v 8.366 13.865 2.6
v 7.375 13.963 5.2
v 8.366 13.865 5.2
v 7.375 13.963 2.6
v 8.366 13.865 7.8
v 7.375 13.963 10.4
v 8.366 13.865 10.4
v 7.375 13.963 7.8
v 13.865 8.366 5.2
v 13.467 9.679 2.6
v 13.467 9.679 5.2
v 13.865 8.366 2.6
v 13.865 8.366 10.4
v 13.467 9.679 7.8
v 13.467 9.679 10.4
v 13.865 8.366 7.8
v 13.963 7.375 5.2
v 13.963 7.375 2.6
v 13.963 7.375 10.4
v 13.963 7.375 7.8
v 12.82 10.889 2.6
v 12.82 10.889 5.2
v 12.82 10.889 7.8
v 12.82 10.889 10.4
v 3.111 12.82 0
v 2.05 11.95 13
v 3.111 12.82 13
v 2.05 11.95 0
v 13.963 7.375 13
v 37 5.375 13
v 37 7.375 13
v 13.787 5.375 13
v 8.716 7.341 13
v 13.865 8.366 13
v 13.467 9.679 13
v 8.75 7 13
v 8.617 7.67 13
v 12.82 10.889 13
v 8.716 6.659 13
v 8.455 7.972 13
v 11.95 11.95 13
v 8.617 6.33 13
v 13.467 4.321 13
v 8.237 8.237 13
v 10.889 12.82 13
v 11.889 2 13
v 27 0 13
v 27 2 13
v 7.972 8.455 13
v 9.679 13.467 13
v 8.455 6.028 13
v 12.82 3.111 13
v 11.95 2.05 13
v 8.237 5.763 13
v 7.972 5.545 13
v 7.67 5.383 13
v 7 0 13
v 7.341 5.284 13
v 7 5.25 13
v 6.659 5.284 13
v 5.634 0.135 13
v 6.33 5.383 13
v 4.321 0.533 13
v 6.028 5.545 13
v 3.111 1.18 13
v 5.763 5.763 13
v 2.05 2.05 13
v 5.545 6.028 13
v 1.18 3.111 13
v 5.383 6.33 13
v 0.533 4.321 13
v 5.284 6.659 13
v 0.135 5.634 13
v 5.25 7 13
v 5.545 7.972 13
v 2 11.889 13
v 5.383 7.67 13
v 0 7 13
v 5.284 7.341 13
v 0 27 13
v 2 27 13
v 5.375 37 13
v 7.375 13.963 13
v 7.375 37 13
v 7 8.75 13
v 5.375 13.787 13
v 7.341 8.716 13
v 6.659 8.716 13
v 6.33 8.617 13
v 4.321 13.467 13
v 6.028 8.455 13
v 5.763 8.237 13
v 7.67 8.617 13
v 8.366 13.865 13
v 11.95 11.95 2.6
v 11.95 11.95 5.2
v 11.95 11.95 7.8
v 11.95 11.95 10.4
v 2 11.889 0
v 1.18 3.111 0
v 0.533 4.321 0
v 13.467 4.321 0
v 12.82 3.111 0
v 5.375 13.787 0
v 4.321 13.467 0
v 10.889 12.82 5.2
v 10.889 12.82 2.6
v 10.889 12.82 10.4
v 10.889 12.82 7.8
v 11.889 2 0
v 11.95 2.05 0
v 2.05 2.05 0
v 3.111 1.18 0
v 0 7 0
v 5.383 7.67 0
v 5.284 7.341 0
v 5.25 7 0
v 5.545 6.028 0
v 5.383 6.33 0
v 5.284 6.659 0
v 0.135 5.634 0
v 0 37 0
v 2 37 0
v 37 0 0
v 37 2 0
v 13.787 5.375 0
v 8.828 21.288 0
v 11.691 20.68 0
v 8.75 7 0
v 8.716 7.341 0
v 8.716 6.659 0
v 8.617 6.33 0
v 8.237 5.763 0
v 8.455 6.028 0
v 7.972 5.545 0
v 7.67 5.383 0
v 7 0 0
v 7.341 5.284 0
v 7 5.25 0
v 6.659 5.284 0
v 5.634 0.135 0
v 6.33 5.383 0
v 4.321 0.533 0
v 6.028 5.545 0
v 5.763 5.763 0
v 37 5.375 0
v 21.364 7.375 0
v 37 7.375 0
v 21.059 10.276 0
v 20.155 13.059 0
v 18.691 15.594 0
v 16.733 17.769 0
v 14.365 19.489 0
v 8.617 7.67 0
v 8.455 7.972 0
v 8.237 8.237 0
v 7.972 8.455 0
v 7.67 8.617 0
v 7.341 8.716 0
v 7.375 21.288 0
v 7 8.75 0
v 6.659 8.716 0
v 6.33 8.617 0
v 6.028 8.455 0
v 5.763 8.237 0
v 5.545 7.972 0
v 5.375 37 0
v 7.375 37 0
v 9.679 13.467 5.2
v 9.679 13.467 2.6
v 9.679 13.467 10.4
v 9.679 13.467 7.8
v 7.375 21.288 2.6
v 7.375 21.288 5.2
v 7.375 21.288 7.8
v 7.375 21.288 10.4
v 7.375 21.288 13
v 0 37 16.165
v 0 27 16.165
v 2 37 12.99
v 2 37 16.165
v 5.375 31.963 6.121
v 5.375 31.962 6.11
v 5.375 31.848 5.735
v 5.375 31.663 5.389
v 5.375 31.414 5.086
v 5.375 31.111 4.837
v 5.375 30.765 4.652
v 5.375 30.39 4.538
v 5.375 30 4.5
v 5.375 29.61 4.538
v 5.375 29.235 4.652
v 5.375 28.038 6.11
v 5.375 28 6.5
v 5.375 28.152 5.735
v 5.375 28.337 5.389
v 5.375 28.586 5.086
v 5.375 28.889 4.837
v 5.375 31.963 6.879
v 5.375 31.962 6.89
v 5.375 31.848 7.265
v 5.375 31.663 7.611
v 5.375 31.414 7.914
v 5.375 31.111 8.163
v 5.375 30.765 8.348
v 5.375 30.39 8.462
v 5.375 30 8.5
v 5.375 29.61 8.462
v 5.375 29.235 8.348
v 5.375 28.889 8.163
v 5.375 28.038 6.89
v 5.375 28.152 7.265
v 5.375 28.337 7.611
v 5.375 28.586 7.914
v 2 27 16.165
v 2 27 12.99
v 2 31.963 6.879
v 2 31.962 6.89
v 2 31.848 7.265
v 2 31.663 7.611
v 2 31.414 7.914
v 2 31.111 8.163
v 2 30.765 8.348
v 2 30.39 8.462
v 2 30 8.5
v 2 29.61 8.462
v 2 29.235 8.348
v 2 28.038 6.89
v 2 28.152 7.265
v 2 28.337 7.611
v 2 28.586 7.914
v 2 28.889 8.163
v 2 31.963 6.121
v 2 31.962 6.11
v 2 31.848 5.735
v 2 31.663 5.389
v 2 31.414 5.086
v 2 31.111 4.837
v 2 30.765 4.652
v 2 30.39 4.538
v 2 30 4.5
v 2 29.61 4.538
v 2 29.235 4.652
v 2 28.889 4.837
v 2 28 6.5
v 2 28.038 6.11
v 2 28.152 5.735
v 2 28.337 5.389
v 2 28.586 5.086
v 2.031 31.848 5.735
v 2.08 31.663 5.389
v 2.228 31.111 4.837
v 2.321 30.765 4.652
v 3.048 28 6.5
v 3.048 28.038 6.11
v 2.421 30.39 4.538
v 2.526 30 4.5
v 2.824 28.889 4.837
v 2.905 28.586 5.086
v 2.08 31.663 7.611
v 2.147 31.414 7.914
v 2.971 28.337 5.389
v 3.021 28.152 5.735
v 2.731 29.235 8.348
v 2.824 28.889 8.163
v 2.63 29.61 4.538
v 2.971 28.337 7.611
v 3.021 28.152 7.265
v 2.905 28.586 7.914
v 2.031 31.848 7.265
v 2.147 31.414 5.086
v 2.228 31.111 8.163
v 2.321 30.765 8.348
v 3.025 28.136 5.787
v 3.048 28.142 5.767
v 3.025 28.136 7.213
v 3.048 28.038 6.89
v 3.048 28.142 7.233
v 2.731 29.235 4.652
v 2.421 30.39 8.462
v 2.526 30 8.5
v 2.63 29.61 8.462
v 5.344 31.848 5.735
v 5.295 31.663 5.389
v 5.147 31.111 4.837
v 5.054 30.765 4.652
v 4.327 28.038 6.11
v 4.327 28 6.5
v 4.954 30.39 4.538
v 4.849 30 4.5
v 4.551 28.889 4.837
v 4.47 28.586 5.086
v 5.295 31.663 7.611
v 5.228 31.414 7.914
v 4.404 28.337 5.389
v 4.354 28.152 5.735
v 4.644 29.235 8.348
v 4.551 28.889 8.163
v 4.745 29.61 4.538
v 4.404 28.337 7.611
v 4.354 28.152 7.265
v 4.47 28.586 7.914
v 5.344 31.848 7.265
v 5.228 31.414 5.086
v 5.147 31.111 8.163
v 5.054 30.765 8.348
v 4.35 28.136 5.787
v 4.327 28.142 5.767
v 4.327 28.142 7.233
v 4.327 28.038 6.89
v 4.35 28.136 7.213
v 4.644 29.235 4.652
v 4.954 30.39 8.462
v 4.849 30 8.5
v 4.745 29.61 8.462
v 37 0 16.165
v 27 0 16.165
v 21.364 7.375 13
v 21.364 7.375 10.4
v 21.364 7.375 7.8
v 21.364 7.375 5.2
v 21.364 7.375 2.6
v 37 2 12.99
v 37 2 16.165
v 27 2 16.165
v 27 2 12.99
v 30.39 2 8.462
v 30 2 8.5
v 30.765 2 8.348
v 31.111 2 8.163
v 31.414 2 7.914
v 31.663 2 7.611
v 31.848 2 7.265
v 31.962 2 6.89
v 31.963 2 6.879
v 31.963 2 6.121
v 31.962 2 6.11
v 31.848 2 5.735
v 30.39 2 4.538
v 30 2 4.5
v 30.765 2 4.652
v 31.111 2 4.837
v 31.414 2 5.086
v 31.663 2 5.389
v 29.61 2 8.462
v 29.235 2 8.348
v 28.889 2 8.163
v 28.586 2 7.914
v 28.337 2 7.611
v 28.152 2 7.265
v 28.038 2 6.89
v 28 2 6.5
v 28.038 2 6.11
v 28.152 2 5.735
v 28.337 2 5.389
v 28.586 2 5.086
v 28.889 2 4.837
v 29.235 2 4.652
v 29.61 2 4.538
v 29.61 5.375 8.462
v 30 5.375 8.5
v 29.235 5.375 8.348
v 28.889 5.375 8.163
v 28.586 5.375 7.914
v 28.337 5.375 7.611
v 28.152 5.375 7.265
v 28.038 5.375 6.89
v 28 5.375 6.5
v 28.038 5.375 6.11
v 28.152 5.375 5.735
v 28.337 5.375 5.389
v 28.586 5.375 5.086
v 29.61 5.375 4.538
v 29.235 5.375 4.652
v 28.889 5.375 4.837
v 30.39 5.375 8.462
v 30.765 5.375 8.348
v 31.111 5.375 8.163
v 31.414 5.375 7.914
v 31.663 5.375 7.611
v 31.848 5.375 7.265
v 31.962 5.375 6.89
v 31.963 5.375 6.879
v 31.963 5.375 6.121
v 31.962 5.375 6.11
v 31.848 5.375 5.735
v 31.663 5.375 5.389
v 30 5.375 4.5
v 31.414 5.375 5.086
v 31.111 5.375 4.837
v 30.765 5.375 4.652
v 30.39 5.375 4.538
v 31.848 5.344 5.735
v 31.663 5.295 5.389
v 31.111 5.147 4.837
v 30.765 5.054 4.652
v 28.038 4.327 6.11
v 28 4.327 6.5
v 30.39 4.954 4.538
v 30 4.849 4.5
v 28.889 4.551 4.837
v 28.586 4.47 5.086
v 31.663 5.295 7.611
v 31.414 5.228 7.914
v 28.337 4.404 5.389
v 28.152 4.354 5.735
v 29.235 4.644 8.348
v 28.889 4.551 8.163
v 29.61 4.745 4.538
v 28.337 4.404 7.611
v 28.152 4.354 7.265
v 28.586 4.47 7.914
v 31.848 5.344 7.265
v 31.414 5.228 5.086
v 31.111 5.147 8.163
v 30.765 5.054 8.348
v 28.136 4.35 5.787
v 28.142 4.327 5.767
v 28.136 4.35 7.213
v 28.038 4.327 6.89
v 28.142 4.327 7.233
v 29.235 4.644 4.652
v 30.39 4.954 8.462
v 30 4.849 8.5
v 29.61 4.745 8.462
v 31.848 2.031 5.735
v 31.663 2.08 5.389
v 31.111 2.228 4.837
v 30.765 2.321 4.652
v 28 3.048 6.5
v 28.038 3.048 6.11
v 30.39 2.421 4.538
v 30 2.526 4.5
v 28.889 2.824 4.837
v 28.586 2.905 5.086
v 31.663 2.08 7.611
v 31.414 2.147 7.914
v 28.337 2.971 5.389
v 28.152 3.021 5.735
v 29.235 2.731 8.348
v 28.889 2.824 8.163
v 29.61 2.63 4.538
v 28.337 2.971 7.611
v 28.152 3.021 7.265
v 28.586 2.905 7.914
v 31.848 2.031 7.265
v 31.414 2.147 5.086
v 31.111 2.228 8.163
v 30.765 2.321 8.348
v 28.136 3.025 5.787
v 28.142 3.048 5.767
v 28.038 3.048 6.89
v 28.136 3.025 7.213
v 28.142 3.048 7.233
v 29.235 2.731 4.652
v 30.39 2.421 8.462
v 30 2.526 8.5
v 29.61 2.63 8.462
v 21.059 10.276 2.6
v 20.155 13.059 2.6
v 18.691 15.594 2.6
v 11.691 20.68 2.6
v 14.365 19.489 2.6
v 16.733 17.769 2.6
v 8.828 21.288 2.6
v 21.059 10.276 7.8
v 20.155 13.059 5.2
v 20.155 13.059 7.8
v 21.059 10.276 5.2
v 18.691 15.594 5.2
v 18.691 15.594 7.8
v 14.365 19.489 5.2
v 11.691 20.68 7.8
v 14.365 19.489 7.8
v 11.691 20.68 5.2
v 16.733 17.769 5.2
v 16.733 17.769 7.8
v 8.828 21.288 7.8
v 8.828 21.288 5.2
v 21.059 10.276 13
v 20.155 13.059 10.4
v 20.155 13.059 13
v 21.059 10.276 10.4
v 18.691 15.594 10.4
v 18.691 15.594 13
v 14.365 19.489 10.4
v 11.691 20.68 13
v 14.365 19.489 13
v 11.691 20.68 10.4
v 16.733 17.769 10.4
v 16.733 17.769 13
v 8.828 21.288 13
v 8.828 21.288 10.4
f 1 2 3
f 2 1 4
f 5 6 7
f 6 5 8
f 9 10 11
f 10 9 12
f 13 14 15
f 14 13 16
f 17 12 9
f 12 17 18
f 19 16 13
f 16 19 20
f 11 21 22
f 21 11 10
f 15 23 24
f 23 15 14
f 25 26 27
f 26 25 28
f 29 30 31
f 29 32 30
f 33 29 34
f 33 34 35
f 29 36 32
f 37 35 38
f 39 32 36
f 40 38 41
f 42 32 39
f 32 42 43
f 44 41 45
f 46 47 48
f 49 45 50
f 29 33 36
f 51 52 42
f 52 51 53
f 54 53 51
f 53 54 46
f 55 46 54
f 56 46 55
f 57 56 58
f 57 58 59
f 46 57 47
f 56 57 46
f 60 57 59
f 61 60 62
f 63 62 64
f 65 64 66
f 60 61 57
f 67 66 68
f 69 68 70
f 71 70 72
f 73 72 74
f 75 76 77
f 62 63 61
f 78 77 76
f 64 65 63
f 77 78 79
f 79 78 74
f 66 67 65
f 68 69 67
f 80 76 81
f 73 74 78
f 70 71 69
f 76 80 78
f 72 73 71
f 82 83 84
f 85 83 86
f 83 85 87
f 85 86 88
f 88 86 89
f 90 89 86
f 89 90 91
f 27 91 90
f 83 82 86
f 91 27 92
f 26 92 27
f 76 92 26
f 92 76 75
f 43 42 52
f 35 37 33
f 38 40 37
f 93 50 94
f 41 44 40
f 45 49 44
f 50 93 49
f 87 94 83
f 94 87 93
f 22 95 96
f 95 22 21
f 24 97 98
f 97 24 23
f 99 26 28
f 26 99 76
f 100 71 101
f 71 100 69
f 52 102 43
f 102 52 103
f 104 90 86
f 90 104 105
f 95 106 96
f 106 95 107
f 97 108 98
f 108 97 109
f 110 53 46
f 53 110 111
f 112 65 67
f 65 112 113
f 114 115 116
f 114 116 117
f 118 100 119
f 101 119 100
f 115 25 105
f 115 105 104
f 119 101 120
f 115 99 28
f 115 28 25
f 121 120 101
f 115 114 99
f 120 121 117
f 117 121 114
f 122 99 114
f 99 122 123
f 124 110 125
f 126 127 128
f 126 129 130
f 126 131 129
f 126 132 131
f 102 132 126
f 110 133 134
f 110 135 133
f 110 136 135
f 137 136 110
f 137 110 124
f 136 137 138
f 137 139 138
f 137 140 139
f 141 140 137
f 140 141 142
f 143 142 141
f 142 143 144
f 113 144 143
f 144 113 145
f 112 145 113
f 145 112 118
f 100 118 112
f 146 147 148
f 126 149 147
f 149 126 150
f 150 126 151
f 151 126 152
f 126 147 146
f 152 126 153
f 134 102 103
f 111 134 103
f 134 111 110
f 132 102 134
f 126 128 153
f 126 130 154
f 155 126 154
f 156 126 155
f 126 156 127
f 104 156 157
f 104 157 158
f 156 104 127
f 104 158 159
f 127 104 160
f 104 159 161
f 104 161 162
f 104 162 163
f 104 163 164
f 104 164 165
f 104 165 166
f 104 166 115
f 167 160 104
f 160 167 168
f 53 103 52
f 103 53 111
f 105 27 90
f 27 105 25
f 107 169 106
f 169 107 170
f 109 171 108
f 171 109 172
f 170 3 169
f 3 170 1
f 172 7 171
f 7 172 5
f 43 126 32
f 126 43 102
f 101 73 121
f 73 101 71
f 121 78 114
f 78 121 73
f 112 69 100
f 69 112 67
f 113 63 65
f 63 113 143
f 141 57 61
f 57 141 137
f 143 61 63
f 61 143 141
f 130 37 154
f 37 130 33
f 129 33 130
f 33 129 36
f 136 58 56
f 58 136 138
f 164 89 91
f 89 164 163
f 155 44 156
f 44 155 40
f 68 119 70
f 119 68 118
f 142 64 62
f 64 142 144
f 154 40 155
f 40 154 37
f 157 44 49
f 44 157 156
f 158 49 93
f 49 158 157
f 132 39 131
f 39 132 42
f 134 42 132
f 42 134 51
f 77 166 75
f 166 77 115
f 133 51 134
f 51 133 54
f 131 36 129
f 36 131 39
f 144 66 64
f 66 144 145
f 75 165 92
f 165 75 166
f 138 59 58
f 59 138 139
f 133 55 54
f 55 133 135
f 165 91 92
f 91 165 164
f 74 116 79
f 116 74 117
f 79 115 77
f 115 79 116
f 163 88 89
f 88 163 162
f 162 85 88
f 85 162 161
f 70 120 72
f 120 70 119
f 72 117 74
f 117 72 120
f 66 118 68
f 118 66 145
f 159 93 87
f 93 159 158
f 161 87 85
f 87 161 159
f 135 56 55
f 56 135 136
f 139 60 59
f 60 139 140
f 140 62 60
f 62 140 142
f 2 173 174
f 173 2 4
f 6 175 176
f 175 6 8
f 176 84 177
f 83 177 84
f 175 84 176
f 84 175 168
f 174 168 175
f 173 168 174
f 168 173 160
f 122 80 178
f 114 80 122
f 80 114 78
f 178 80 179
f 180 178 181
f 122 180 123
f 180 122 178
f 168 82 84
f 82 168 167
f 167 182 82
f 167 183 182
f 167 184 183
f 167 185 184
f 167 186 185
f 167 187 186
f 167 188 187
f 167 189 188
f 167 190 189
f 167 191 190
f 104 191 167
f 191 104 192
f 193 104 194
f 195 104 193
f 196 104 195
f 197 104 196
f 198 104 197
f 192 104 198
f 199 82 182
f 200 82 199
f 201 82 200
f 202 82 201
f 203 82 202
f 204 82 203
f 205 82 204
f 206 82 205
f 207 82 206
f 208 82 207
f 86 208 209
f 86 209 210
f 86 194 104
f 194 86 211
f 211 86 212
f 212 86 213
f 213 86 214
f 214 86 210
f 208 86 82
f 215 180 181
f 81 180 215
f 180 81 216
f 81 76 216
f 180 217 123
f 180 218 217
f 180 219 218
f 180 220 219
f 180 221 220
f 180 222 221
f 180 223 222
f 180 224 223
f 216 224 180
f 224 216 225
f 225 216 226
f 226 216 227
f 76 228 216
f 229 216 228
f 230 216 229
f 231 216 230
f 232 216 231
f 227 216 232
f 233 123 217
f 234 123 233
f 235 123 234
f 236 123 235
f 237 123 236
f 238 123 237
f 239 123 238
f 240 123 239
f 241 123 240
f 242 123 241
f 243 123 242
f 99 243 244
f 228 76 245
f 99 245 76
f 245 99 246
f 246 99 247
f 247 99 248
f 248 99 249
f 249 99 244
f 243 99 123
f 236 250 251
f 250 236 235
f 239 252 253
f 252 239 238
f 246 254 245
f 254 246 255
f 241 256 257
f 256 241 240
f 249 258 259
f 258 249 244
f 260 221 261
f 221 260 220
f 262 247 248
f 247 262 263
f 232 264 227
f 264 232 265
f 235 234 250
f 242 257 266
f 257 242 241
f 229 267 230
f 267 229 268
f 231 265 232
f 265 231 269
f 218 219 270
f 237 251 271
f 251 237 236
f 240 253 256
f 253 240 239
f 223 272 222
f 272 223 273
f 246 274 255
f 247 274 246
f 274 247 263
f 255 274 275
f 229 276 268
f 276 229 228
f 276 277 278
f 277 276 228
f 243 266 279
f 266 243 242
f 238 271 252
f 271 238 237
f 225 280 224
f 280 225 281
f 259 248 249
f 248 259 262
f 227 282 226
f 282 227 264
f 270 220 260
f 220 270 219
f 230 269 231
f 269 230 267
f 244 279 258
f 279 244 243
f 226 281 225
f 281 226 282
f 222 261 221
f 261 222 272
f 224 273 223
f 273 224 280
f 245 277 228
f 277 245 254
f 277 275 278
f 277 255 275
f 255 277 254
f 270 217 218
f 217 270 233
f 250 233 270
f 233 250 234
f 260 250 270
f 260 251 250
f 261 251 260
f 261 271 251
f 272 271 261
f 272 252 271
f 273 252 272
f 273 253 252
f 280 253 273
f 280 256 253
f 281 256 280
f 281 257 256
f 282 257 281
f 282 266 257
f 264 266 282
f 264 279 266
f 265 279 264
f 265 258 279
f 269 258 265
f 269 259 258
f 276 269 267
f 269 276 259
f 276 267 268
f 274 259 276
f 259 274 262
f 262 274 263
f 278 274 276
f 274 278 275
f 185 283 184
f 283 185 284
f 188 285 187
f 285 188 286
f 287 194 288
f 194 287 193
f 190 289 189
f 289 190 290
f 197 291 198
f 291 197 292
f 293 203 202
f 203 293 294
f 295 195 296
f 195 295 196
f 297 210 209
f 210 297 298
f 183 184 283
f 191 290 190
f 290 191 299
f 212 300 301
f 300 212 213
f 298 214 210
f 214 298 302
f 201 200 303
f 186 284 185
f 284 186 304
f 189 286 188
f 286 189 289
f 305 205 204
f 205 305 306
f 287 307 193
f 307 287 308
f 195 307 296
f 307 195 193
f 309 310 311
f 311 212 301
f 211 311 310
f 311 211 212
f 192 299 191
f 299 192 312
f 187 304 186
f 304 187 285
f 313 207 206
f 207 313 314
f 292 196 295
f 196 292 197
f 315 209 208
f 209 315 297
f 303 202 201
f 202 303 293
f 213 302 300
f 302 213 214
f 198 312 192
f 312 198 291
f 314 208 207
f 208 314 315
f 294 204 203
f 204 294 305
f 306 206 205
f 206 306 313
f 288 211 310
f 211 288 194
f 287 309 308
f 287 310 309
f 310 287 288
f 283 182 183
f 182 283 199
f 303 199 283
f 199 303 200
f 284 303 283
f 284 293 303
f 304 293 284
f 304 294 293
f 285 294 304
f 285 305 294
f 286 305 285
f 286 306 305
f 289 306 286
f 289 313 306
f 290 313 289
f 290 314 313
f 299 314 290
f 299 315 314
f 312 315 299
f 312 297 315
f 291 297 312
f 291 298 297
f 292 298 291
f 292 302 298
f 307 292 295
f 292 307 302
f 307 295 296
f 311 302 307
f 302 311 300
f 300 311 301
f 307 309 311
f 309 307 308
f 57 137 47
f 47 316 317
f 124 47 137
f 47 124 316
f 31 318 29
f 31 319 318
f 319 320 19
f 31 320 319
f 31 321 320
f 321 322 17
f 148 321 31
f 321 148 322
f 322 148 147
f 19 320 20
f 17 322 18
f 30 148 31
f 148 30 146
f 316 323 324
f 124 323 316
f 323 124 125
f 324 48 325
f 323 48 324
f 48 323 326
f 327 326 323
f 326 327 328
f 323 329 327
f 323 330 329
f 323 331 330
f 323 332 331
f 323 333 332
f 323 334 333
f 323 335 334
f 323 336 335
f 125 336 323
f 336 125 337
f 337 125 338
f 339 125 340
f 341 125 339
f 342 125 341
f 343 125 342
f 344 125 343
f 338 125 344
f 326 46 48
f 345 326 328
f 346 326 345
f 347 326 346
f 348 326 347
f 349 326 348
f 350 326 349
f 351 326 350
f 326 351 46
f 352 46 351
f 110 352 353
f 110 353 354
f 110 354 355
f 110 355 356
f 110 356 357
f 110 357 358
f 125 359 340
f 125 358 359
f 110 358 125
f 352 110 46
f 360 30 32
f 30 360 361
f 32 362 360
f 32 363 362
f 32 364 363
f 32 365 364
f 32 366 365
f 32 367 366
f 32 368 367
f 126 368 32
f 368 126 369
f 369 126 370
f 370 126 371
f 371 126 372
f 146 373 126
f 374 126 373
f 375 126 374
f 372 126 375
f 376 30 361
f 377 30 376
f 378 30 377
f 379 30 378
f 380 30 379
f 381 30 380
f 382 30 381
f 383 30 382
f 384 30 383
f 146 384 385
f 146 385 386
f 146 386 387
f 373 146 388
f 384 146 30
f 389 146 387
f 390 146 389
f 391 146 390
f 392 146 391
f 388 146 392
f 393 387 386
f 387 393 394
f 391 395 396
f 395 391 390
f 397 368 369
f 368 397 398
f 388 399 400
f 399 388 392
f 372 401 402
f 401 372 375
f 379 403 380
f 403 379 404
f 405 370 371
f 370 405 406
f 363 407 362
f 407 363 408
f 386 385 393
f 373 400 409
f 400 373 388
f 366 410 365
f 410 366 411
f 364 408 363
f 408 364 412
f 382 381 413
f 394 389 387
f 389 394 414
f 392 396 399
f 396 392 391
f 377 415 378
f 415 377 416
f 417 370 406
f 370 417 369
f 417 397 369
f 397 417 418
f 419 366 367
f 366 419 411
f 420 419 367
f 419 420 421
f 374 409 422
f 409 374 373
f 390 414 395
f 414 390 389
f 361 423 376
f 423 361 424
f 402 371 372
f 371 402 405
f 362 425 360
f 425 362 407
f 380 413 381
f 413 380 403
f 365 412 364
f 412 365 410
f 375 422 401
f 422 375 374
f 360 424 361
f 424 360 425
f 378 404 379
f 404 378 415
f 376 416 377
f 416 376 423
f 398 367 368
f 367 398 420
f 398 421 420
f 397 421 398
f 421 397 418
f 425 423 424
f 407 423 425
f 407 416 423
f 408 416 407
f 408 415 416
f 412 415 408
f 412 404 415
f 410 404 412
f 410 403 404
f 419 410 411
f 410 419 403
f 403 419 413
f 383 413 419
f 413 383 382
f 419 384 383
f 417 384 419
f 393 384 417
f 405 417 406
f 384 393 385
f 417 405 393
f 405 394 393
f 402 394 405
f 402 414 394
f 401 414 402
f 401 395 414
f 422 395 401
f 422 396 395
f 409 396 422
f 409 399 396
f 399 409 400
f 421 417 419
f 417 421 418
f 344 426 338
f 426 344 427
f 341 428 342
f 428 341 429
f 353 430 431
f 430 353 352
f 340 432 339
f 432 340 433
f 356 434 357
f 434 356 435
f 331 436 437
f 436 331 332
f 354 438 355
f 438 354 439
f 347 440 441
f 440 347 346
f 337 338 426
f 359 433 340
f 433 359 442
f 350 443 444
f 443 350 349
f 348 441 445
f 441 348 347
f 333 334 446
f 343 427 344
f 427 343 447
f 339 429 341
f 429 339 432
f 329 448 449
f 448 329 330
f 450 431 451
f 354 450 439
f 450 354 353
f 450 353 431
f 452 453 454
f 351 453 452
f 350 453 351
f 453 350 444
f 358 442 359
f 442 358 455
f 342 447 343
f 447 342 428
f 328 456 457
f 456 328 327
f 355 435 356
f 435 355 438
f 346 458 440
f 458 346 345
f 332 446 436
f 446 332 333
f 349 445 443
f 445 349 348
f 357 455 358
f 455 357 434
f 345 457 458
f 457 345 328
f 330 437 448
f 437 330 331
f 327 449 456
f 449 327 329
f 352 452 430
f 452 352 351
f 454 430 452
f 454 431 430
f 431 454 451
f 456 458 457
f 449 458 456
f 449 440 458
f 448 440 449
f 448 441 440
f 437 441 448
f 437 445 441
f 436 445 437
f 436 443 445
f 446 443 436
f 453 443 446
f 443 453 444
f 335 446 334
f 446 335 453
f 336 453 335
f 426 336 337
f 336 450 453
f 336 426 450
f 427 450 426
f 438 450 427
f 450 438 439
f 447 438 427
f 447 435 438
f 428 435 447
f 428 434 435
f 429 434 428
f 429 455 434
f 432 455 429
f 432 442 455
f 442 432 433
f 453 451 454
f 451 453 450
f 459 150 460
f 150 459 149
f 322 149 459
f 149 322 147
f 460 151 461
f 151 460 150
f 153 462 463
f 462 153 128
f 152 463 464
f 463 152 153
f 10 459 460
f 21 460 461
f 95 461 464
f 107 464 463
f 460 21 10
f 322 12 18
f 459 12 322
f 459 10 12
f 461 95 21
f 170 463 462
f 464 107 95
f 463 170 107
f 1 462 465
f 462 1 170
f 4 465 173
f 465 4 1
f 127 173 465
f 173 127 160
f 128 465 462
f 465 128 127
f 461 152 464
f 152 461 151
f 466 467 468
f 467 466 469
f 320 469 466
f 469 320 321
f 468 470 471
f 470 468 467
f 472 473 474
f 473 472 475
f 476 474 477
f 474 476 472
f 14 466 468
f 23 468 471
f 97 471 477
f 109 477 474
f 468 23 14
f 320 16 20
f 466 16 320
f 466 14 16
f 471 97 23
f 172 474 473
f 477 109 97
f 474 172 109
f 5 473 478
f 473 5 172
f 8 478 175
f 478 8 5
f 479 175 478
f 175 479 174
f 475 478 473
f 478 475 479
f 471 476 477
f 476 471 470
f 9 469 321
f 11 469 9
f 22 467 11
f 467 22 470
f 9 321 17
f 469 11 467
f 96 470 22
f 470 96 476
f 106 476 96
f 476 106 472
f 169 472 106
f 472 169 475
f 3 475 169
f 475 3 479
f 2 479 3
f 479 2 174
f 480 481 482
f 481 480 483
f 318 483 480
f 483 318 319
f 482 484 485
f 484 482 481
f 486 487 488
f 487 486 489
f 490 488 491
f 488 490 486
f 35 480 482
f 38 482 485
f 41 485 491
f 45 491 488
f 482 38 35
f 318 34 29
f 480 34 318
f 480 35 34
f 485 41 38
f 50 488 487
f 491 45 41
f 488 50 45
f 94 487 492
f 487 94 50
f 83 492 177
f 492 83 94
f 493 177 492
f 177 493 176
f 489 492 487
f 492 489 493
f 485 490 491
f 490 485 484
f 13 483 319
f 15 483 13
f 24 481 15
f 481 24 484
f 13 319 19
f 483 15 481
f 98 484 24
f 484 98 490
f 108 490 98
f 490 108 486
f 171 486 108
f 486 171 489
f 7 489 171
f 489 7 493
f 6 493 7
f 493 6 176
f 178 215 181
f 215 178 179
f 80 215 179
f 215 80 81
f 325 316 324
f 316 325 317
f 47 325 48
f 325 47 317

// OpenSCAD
CORNER_THICKNESS = 13.0;
SCREW_DIAMETER = 3.5;
SCREW_WALL_THICKNESS = (14 - SCREW_DIAMETER) / 2;
DETAIL = 32;
TAB_THICKNESS = 3.175;
TAB_TOLERANCE = 0.1;
TAB_WALL_THICKNESS = 2;
TAB_LENGTH = 30.0;
SNAP_DIAMETER = 4;
SNAP_HEIGHT = TAB_THICKNESS / 3;
SNAP_OFFSET_FROM_CORNER = 30;
REGISTRATION_TAB_LENGTH = 10;
REGISTRATION_TAB_DEPTH = 3.175;

// Calculated Values
OUTER_CYLINDER = SCREW_DIAMETER / 2 + SCREW_WALL_THICKNESS;
INNER_BOX_THICKNESS = TAB_THICKNESS + TAB_TOLERANCE * 2;
OUTER_BOX_THICKNESS = INNER_BOX_THICKNESS + TAB_WALL_THICKNESS * 2;
OUTER_BOX_WALL_THICKNESS = (OUTER_BOX_THICKNESS - INNER_BOX_THICKNESS) / 2;

module screwhole()
{
	translate(v = [OUTER_CYLINDER, OUTER_CYLINDER, 0])
		difference()
		{
			cylinder(r = OUTER_CYLINDER, h = CORNER_THICKNESS, $fn = DETAIL);
			translate(v = [0, 0, -1])
				cylinder(r = SCREW_DIAMETER / 2, h = CORNER_THICKNESS + 2, $fn = DETAIL);
		}
}

module tab()
{
	union()
	{
		translate(v = [0, SCREW_DIAMETER / 2 + SCREW_WALL_THICKNESS, 0])
			difference()
			{
				cube(size = [OUTER_BOX_THICKNESS, TAB_LENGTH, CORNER_THICKNESS]);
				translate(v = [TAB_WALL_THICKNESS, (OUTER_BOX_THICKNESS - INNER_BOX_THICKNESS) / 2, -1])
					cube(size = [INNER_BOX_THICKNESS, TAB_LENGTH, CORNER_THICKNESS + 2]);

			}
		snap1();
		snap2();
	}
}

module snap1()
{
	translate(v = [OUTER_BOX_WALL_THICKNESS - 0.01, SNAP_OFFSET_FROM_CORNER, CORNER_THICKNESS / 2])
		difference()
		{
			rotate(a = [0, 90, 0])
				cylinder(r = SNAP_DIAMETER / 2, h = SNAP_HEIGHT, $fn = DETAIL);
			translate(v = [0, SNAP_DIAMETER / 2, 0])
				rotate(a = [0, 0, 15])
					translate(v = [0, SNAP_DIAMETER * -1, SNAP_DIAMETER / -2])
						cube(size = [SNAP_DIAMETER, SNAP_DIAMETER, SNAP_DIAMETER]);
		}
}

module snap2()
{
	translate(v = [OUTER_BOX_WALL_THICKNESS + INNER_BOX_THICKNESS + 0.01, SNAP_OFFSET_FROM_CORNER, CORNER_THICKNESS / 2])
		scale(v = [-1, 1, 1])
			difference()
			{
				rotate(a = [0, 90, 0])
					cylinder(r = SNAP_DIAMETER / 2, h = SNAP_HEIGHT, $fn = DETAIL);
				translate(v = [0, SNAP_DIAMETER / 2, 0])
					rotate(a = [0, 0, 15])
						translate(v = [0, SNAP_DIAMETER * -1, SNAP_DIAMETER / -2])
							cube(size = [SNAP_DIAMETER, SNAP_DIAMETER, SNAP_DIAMETER]);
			}
}


module tabs()
{
	difference()
	{
		union()
		{
			tab();
			translate(v = [0, OUTER_BOX_THICKNESS, 0])
			rotate(a = [0, 0, -90])
				tab();
		}
		translate(v = [OUTER_CYLINDER, OUTER_CYLINDER, -1])
			cylinder(r = SCREW_DIAMETER / 2, h = CORNER_THICKNESS + 2, $fn = DETAIL);
	}
}

module strain_reliefs()
{
	difference()
	{
		for (z_pos = [0 : 2])
		{
			translate(v = [OUTER_BOX_THICKNESS - 0.01, OUTER_BOX_THICKNESS - 0.01, CORNER_THICKNESS / 5 * z_pos * 2])
				intersection()
				{
					cylinder(r = OUTER_CYLINDER * 2, h = CORNER_THICKNESS / 5);
					cube(size = [OUTER_CYLINDER * 2, OUTER_CYLINDER * 2, CORNER_THICKNESS]);
				}
		}
		translate(v = [OUTER_CYLINDER, OUTER_CYLINDER, -1])
			cylinder(r = SCREW_DIAMETER / 2, h = CORNER_THICKNESS + 2, $fn = DETAIL);
	}
}

module registration_tabs()
{
	union()
	{
		translate(v = [0, TAB_LENGTH + SCREW_DIAMETER / 2 + SCREW_WALL_THICKNESS - REGISTRATION_TAB_LENGTH, CORNER_THICKNESS - 0.01])
			cube(size = [OUTER_BOX_WALL_THICKNESS, REGISTRATION_TAB_LENGTH, REGISTRATION_TAB_DEPTH]);
		translate(v = [TAB_LENGTH + SCREW_DIAMETER / 2 + SCREW_WALL_THICKNESS - REGISTRATION_TAB_LENGTH, 0, CORNER_THICKNESS - 0.01])
			cube(size = [REGISTRATION_TAB_LENGTH, OUTER_BOX_WALL_THICKNESS, REGISTRATION_TAB_DEPTH]);
	}
}

union()
{
	screwhole();
	tabs();
	strain_reliefs();
	registration_tabs();
	//snap1();
	//snap2();
}
